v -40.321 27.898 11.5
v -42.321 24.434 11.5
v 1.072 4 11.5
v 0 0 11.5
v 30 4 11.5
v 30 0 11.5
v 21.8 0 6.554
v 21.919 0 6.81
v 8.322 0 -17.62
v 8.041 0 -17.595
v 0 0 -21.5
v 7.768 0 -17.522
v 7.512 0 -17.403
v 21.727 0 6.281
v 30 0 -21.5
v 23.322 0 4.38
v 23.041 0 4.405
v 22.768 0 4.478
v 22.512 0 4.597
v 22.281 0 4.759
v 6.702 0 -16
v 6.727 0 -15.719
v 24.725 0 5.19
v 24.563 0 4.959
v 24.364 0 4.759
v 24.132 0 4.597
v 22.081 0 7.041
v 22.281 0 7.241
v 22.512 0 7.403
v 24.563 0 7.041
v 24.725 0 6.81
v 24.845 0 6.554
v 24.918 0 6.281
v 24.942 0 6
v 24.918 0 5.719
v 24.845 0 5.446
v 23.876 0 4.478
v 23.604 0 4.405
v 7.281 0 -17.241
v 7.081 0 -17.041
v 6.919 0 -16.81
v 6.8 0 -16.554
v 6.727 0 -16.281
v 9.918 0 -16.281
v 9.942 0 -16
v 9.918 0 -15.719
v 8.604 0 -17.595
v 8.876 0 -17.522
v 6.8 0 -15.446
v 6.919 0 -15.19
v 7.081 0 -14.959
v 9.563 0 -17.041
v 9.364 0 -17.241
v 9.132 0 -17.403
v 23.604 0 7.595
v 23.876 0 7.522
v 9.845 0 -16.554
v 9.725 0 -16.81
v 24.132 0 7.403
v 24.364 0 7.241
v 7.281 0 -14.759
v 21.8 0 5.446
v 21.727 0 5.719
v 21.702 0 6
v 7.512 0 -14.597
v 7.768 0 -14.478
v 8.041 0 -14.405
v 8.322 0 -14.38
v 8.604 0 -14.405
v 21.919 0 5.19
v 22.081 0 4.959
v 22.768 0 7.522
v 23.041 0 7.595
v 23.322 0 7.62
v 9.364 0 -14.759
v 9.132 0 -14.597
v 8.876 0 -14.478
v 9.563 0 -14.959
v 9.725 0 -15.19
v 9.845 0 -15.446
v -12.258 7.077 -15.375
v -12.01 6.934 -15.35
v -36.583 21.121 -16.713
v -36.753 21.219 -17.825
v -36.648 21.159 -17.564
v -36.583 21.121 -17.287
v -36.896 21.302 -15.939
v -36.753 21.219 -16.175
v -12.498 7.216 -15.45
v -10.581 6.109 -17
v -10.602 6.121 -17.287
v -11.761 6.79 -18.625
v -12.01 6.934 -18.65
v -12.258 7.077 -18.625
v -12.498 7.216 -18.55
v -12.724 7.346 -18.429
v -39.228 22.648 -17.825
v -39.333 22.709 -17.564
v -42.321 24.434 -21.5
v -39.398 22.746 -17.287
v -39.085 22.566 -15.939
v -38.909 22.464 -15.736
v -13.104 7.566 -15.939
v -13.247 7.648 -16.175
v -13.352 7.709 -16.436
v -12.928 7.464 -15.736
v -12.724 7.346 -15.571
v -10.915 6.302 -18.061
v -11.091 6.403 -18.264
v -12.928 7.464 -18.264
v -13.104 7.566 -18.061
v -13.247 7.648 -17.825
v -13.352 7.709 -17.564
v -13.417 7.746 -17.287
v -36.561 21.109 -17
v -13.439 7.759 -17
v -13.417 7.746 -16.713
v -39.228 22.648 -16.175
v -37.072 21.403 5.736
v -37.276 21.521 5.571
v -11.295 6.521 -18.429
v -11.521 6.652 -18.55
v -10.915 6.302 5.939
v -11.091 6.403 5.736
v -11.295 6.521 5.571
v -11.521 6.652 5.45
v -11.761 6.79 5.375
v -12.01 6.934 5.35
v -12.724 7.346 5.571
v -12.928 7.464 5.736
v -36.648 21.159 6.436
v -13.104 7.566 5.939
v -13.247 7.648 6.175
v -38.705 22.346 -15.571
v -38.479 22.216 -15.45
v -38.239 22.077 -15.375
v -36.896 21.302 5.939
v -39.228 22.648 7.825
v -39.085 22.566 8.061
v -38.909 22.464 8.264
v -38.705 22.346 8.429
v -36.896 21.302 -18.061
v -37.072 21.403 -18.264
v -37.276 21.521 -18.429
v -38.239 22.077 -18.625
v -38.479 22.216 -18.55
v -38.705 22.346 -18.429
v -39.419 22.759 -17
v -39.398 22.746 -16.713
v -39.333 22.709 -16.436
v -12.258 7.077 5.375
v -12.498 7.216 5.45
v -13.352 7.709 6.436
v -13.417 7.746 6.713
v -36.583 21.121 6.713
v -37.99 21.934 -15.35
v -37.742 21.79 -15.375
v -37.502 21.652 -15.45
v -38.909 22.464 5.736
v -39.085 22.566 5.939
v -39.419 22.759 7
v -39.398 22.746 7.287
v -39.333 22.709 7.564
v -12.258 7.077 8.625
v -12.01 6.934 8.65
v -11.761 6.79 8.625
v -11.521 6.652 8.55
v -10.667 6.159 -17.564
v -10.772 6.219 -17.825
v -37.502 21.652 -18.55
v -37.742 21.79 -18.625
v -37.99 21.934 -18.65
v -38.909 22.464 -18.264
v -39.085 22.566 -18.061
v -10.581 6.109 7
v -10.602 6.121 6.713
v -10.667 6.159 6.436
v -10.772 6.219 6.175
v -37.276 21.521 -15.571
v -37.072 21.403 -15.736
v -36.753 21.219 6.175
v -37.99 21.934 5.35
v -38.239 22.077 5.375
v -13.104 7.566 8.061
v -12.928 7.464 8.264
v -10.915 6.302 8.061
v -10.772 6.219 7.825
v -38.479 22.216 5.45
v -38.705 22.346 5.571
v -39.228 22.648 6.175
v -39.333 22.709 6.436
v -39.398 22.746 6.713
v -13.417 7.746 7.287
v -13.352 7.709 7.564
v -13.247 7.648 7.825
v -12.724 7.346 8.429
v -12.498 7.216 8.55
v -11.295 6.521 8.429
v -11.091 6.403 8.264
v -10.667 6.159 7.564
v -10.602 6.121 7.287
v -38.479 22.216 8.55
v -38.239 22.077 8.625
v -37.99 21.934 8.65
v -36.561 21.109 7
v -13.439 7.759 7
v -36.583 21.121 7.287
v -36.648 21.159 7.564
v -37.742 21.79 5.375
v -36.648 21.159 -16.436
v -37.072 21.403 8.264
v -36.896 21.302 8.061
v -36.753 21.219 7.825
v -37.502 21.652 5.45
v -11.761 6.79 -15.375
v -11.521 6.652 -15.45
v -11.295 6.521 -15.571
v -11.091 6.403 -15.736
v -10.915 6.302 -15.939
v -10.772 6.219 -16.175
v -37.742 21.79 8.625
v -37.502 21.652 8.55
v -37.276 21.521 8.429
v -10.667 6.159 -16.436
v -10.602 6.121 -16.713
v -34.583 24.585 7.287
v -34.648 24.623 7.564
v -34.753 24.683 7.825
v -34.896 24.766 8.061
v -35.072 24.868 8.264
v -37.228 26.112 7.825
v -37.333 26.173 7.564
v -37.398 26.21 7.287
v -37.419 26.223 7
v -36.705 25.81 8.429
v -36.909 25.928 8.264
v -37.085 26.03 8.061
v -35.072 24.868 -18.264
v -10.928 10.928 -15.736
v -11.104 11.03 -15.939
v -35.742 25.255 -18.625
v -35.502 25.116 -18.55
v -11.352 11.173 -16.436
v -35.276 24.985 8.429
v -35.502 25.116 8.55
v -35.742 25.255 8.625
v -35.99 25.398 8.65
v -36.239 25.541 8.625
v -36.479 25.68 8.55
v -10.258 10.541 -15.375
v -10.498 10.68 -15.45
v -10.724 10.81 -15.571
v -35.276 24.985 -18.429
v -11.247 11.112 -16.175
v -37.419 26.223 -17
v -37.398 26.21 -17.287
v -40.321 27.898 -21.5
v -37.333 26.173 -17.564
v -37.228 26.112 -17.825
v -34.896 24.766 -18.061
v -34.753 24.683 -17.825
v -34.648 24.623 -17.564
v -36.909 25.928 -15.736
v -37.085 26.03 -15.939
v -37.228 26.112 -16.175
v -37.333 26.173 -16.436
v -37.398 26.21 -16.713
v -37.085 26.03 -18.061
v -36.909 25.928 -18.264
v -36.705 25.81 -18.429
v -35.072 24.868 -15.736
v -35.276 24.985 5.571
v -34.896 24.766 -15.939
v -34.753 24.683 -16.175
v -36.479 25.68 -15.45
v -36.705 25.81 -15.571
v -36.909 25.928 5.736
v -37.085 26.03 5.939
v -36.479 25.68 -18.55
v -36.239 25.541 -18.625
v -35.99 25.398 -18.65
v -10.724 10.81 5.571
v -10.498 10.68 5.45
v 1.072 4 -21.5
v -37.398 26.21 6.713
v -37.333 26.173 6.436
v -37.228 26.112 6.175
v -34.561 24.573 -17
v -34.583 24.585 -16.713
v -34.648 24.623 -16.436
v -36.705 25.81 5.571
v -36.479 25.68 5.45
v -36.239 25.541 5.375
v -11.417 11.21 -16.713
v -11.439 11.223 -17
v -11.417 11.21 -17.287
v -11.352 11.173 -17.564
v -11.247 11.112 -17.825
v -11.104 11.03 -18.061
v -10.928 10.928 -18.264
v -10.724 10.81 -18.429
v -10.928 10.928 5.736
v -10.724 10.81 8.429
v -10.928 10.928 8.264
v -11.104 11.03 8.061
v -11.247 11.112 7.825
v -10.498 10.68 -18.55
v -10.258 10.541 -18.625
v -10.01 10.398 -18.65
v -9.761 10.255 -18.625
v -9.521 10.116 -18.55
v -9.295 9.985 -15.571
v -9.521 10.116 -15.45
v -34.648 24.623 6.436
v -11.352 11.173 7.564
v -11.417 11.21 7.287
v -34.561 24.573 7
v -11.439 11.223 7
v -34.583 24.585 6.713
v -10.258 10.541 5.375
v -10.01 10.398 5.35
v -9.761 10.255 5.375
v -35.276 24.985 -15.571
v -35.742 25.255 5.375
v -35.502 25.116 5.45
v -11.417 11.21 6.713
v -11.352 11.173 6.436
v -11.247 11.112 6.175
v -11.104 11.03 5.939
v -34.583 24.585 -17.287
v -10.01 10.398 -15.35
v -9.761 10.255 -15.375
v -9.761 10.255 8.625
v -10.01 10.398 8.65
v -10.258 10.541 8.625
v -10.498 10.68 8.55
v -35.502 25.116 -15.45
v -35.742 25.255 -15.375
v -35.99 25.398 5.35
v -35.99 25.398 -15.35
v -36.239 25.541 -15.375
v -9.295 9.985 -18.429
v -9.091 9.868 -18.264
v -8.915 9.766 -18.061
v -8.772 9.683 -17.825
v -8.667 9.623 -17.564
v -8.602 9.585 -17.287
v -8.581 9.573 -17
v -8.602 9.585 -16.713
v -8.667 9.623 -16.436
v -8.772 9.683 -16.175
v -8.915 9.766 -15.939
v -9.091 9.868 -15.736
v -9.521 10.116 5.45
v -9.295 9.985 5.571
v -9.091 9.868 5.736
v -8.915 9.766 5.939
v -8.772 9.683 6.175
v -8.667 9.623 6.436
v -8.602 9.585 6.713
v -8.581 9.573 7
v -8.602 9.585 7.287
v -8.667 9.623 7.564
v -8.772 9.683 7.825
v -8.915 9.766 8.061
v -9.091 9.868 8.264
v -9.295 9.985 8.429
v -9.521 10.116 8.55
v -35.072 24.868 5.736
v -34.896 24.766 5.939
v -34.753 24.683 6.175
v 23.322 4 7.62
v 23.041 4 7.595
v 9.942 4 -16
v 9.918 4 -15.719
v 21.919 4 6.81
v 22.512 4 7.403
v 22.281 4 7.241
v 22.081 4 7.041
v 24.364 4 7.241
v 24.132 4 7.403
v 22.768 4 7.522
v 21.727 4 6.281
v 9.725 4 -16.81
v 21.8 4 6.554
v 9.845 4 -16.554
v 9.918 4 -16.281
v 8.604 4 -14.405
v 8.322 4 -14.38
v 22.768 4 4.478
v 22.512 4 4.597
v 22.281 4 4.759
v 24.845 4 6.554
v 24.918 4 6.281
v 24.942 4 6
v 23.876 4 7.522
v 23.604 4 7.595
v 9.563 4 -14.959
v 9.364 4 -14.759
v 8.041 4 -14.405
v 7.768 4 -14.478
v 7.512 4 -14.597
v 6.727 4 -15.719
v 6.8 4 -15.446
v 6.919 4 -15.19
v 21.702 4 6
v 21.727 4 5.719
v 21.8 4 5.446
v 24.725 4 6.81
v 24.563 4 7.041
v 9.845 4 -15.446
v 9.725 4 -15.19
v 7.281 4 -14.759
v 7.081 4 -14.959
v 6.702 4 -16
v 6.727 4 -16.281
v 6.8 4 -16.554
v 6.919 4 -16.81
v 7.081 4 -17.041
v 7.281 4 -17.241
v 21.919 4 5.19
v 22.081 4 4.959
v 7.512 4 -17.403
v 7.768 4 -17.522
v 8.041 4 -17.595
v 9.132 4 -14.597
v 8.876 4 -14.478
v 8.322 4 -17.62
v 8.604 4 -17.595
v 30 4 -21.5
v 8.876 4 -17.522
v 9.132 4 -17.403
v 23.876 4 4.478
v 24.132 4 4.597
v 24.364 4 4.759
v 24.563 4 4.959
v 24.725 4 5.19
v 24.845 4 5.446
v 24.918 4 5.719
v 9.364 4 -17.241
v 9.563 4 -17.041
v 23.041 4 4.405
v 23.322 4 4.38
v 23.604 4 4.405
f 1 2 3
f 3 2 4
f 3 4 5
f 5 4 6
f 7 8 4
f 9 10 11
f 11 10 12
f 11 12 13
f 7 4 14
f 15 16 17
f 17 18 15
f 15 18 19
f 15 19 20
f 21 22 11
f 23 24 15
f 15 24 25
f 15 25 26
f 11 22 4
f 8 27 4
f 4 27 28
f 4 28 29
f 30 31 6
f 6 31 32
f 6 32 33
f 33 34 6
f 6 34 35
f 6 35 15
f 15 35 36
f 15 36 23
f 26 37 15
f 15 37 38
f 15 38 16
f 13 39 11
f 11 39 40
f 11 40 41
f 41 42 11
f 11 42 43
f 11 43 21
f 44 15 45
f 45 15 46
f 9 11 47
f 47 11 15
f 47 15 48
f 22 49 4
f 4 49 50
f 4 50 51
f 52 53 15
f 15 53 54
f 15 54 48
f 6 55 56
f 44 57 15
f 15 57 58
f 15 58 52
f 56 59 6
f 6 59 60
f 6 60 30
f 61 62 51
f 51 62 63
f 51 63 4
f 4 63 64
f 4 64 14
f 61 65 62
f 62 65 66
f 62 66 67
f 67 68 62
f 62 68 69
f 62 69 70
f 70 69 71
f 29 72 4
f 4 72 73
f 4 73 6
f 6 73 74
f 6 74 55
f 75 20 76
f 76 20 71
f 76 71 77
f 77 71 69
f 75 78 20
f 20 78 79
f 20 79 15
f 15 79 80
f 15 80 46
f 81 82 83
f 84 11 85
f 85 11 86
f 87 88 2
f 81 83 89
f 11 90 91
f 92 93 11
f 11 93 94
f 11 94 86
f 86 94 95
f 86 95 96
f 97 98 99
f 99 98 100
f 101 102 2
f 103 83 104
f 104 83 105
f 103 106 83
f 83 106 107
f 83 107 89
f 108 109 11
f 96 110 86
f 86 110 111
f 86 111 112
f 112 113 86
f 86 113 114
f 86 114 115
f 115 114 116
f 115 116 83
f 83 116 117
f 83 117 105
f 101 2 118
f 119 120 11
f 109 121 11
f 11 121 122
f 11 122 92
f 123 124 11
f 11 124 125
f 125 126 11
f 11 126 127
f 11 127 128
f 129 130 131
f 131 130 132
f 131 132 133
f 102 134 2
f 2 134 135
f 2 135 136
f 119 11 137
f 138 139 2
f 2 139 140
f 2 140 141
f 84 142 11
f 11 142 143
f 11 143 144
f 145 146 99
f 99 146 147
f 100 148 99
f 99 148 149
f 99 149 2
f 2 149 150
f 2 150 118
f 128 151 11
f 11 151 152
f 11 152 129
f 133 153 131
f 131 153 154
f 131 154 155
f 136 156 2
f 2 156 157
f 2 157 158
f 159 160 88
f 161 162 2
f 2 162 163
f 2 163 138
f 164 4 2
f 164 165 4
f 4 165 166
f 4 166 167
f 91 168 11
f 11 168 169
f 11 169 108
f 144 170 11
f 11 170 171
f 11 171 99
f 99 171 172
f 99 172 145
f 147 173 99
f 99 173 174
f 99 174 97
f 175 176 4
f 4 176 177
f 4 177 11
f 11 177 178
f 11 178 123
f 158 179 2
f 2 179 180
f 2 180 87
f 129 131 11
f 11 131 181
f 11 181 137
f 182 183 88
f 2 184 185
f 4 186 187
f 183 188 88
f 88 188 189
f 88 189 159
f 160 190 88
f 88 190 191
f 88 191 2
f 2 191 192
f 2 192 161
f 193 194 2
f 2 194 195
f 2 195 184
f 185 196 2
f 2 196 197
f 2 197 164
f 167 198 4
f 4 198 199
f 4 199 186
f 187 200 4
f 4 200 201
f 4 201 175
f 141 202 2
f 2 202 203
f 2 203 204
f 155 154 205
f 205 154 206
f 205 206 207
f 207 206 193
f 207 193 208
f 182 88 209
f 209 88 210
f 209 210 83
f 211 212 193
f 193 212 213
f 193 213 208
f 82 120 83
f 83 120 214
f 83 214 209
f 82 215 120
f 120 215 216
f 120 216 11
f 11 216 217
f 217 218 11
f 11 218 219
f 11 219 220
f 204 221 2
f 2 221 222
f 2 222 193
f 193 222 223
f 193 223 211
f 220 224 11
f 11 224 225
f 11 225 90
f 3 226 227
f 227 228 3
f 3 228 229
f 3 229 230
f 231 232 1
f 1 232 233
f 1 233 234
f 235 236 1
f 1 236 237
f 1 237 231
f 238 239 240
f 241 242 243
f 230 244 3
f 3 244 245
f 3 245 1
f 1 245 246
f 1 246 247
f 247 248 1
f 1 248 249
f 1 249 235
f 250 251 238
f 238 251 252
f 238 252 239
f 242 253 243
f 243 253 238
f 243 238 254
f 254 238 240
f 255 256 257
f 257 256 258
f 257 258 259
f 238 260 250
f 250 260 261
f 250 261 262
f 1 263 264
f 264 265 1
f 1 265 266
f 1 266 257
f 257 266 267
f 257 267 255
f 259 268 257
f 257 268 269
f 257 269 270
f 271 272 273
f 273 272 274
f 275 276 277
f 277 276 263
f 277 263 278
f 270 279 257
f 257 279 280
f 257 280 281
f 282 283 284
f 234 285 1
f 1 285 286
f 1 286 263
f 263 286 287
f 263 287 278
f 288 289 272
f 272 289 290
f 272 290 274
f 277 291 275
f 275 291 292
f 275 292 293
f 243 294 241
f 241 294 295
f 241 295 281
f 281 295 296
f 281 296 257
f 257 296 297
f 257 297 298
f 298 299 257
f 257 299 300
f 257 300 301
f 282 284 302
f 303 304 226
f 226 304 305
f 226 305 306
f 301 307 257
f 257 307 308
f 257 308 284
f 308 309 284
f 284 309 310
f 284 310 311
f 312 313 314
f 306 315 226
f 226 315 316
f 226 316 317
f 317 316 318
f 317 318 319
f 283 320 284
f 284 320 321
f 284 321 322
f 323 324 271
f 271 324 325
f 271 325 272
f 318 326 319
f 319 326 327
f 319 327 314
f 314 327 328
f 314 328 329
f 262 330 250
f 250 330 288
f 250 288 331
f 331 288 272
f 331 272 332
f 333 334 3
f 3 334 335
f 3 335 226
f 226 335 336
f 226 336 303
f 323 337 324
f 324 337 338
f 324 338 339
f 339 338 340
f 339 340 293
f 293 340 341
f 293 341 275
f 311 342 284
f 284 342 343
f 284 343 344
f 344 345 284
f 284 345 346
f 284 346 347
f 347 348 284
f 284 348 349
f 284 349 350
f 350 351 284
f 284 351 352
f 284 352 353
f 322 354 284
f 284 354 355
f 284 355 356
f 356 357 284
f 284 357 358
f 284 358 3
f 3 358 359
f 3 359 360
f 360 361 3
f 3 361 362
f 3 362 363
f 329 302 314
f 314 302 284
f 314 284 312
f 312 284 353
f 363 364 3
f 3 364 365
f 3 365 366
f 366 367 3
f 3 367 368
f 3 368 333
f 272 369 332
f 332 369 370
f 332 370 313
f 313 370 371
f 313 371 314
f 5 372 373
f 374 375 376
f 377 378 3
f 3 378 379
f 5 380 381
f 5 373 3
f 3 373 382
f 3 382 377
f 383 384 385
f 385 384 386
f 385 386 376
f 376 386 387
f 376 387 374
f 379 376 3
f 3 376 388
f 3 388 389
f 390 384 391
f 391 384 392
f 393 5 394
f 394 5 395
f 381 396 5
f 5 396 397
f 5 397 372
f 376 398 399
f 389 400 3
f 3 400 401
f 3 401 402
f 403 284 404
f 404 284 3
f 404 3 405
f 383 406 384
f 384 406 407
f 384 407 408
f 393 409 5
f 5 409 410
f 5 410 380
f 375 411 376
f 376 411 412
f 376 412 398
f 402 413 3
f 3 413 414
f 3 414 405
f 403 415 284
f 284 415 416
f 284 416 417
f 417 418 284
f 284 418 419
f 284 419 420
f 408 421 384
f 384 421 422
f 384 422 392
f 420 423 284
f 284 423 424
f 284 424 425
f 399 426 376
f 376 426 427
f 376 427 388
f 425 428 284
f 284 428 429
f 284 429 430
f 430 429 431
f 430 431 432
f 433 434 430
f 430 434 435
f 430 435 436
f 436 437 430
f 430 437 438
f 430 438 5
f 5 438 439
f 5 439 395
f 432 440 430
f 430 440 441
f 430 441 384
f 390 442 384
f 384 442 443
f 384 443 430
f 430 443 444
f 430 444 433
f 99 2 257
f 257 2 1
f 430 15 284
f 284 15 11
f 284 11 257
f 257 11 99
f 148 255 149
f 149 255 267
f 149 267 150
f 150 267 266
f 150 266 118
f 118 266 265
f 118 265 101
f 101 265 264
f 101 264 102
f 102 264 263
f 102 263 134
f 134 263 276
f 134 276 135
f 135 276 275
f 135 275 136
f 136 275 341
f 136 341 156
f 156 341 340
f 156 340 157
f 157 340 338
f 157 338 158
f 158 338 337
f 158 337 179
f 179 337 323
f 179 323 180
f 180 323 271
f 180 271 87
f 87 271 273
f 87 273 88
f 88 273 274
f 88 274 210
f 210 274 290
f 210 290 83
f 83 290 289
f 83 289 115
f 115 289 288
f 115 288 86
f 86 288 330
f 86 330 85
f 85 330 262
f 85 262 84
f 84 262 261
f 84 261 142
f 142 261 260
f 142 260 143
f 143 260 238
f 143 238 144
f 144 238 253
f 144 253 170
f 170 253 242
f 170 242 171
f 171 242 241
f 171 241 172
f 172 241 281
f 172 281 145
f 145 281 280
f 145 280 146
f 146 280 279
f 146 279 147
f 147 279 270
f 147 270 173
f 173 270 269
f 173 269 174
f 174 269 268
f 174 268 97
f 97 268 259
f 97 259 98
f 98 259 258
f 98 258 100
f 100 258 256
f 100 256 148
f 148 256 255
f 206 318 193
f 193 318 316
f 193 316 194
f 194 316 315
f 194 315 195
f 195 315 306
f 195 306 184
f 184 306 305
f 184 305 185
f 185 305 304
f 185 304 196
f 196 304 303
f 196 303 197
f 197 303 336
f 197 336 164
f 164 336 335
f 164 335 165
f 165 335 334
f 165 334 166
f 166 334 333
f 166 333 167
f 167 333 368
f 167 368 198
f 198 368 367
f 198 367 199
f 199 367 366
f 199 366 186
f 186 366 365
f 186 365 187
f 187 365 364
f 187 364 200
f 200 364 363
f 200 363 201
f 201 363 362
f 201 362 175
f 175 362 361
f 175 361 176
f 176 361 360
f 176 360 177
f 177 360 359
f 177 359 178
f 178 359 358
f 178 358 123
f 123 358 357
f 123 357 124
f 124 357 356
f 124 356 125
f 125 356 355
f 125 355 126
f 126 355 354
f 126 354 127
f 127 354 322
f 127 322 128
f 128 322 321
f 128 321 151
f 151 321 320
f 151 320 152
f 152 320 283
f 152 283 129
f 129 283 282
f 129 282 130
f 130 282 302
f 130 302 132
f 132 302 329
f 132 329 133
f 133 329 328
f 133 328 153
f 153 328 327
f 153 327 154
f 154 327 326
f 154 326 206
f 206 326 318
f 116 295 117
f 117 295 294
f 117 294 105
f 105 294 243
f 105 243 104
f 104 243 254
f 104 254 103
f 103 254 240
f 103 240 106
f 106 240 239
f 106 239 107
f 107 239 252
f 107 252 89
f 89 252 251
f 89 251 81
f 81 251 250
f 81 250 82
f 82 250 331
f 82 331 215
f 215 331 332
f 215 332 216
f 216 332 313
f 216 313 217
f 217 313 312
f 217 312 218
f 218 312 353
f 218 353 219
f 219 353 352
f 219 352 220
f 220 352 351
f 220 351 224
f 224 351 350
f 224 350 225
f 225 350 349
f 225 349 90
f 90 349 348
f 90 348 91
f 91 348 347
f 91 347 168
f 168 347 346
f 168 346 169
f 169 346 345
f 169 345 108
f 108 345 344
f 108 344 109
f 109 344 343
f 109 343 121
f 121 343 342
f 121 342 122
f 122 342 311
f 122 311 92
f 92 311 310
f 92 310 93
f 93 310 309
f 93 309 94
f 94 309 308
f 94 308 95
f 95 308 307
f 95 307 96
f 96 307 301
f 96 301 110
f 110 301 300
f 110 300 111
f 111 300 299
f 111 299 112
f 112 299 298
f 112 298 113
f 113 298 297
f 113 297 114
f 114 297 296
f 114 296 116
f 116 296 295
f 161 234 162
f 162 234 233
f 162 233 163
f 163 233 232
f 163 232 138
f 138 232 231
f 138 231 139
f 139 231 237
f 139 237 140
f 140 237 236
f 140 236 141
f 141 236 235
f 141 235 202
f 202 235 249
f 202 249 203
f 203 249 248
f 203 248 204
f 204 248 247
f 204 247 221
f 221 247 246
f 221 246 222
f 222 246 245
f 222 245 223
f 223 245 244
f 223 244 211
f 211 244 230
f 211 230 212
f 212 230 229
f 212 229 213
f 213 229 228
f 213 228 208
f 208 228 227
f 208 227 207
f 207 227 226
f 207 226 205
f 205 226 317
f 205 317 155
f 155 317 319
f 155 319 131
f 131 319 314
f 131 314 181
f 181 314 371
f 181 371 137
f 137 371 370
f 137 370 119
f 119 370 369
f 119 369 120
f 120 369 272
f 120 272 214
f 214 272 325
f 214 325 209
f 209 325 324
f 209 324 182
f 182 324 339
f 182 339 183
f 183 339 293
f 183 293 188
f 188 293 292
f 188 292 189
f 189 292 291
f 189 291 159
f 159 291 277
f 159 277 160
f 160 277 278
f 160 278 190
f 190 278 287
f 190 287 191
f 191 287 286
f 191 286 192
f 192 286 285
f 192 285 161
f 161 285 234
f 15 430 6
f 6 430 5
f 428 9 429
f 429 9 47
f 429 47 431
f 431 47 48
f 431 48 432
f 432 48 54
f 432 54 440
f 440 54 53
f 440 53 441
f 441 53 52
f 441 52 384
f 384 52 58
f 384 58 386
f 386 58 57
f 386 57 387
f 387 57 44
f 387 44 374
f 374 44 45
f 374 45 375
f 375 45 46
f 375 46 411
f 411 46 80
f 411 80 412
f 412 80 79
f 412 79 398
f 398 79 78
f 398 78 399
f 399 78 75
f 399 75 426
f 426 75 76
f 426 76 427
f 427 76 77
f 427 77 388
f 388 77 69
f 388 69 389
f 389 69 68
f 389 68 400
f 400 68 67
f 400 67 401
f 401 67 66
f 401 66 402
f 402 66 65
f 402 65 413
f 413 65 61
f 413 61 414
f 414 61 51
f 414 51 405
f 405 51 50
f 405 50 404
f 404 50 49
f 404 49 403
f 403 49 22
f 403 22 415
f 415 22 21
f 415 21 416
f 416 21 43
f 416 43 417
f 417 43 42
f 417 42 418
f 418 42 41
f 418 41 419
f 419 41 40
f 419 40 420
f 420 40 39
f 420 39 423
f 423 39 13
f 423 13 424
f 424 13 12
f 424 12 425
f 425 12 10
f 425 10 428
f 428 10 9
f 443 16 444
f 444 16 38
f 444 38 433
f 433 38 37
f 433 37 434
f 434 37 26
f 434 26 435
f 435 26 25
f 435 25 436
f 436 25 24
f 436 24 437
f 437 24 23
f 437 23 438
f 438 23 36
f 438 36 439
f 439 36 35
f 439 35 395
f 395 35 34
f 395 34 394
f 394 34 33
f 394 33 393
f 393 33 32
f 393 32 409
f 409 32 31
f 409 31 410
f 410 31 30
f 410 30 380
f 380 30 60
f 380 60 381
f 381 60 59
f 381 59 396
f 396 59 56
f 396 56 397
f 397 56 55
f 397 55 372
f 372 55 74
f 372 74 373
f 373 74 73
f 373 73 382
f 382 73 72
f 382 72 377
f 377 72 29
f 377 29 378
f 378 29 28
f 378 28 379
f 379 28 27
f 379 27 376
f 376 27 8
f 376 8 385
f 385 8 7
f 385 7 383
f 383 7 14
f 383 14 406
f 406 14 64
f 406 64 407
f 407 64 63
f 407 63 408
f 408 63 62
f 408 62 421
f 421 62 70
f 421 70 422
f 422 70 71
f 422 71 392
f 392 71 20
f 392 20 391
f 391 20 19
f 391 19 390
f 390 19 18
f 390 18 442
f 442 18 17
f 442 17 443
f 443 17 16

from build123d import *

# Parameters (mm, degrees)
SKETCH1_W           = 50
SKETCH1_H           = 23
BOSS_EXTRUDE1_DEPTH = 20
CUT_EXTRUDE3_DEPTH  = 30
CUT_EXTRUDE4_DEPTH  = 30
SKETCH9_W           = 23
SKETCH9_H           = 4
BOSS_EXTRUDE2_DEPTH = 20
BOSS_EXTRUDE3_DEPTH = 10
SKETCH14_R          = 1.65
CUT_EXTRUDE6_DEPTH  = 10
SKETCH22_W          = 33
SKETCH22_H          = 4
BOSS_EXTRUDE4_DEPTH = 5
CUT_EXTRUDE7_DEPTH  = 5


with BuildPart() as part:
    # Sketch1 → Boss-Extrude1 (new body)
    with BuildSketch(Plane(origin=(0, 0, 0), x_dir=(1, 0, 0), z_dir=(0, 1, 0))):
        Rectangle(SKETCH1_W, SKETCH1_H)
    extrude(amount=BOSS_EXTRUDE1_DEPTH)

    # Sketch2 → Cut-Extrude3 (cut)
    with BuildSketch(Plane.XY.offset(11.5)):
        Polygon((0, 0), (-25, 14.43375673), (-25, 0), align=None)
        Polygon((1.07179677, 4), (25, 4), (25, 20), (-25, 20), (-25, 19.052558883), align=None)
    extrude(amount=-CUT_EXTRUDE3_DEPTH, mode=Mode.SUBTRACT)

    # Sketch4 → Cut-Extrude4 (cut)
    with BuildSketch(Plane.XY.offset(11.5)):
        Polygon((-25, 14.43375673), (-23, 17.897858345), (-25, 19.052558883), align=None)
    extrude(amount=-CUT_EXTRUDE4_DEPTH, mode=Mode.SUBTRACT)

    # Sketch9 → Boss-Extrude2 (add)
    with BuildSketch(Plane(origin=(-25, 14.43375673, 0), x_dir=(0, 0, 1), z_dir=(-0.8660254037844407, 0.4999999999999965, 0))):
        with Locations((0, 2)):
            Rectangle(SKETCH9_W, SKETCH9_H)
    extrude(amount=BOSS_EXTRUDE2_DEPTH)

    # Sketch11 → Boss-Extrude3 (add)
    with BuildSketch(Plane(origin=(0, 0, -11.5), x_dir=(-1, 0, 0), z_dir=(0, 0, -1))):
        Polygon((-25, 4), (-1.07179677, 4), (40.320508076, 27.897858345), (42.320508076, 24.43375673), (0, 0), (-25, 0), align=None)
    extrude(amount=BOSS_EXTRUDE3_DEPTH)

    # Sketch14 → Cut-Extrude6 (cut)
    with BuildSketch(Plane(origin=(2, 3.464101615, 0), x_dir=(0.866025403784438, -0.5000000000000012, 0), z_dir=(0.5000000000000011, 0.8660254037844379, 0))):
        with Locations(Location((-43.867513459, 17, 0), (0, 0, 180))):
            Circle(SKETCH14_R)
        with Locations(Location((-43.867513459, -7, 0), (0, 0, 180))):
            Circle(SKETCH14_R)
        with Locations(Location((-13.867513459, 17, 0), (0, 0, 180))):
            Circle(SKETCH14_R)
        with Locations(Location((-13.867513459, -7, 0), (0, 0, 180))):
            Circle(SKETCH14_R)
    extrude(amount=-CUT_EXTRUDE6_DEPTH, mode=Mode.SUBTRACT)

    # Sketch22 → Boss-Extrude4 (add)
    with BuildSketch(Plane(origin=(25, 0, 0), x_dir=(0, 0, -1), z_dir=(1, 0, 0))):
        with Locations((5, 2)):
            Rectangle(SKETCH22_W, SKETCH22_H)
    extrude(amount=BOSS_EXTRUDE4_DEPTH)

    # Sketch23 → Cut-Extrude7 (cut)
    with BuildSketch(Plane.XZ):
        with BuildLine():
            ThreePointArc((23.322235494, 7.62), (22.176722509, 4.854487014), (24.942235494, 6))
            Line((24.942235494, 6), (23.322235494, 6))
            Line((23.322235494, 6), (23.322235494, 7.62))
        make_face()
        with BuildLine():
            Line((23.322235494, 6), (24.942235494, 6))
            ThreePointArc((24.942235494, 6), (24.46774848, 7.145512986), (23.322235494, 7.62))
            Line((23.322235494, 7.62), (23.322235494, 6))
        make_face()
        with BuildLine():
            ThreePointArc((6.702235494, -16), (7.176722509, -17.145512986), (8.322235494, -17.62))
            Line((8.322235494, -17.62), (8.322235494, -16))
            Line((8.322235494, -16), (6.702235494, -16))
        make_face()
        with BuildLine():
            Line((8.322235494, -16), (8.322235494, -17.62))
            ThreePointArc((8.322235494, -17.62), (9.46774848, -17.145512986), (9.942235494, -16))
            ThreePointArc((9.942235494, -16), (8.322235494, -14.38), (6.702235494, -16))
            Line((6.702235494, -16), (8.322235494, -16))
        make_face()
    extrude(amount=-CUT_EXTRUDE7_DEPTH, mode=Mode.SUBTRACT)


solid = part.part
